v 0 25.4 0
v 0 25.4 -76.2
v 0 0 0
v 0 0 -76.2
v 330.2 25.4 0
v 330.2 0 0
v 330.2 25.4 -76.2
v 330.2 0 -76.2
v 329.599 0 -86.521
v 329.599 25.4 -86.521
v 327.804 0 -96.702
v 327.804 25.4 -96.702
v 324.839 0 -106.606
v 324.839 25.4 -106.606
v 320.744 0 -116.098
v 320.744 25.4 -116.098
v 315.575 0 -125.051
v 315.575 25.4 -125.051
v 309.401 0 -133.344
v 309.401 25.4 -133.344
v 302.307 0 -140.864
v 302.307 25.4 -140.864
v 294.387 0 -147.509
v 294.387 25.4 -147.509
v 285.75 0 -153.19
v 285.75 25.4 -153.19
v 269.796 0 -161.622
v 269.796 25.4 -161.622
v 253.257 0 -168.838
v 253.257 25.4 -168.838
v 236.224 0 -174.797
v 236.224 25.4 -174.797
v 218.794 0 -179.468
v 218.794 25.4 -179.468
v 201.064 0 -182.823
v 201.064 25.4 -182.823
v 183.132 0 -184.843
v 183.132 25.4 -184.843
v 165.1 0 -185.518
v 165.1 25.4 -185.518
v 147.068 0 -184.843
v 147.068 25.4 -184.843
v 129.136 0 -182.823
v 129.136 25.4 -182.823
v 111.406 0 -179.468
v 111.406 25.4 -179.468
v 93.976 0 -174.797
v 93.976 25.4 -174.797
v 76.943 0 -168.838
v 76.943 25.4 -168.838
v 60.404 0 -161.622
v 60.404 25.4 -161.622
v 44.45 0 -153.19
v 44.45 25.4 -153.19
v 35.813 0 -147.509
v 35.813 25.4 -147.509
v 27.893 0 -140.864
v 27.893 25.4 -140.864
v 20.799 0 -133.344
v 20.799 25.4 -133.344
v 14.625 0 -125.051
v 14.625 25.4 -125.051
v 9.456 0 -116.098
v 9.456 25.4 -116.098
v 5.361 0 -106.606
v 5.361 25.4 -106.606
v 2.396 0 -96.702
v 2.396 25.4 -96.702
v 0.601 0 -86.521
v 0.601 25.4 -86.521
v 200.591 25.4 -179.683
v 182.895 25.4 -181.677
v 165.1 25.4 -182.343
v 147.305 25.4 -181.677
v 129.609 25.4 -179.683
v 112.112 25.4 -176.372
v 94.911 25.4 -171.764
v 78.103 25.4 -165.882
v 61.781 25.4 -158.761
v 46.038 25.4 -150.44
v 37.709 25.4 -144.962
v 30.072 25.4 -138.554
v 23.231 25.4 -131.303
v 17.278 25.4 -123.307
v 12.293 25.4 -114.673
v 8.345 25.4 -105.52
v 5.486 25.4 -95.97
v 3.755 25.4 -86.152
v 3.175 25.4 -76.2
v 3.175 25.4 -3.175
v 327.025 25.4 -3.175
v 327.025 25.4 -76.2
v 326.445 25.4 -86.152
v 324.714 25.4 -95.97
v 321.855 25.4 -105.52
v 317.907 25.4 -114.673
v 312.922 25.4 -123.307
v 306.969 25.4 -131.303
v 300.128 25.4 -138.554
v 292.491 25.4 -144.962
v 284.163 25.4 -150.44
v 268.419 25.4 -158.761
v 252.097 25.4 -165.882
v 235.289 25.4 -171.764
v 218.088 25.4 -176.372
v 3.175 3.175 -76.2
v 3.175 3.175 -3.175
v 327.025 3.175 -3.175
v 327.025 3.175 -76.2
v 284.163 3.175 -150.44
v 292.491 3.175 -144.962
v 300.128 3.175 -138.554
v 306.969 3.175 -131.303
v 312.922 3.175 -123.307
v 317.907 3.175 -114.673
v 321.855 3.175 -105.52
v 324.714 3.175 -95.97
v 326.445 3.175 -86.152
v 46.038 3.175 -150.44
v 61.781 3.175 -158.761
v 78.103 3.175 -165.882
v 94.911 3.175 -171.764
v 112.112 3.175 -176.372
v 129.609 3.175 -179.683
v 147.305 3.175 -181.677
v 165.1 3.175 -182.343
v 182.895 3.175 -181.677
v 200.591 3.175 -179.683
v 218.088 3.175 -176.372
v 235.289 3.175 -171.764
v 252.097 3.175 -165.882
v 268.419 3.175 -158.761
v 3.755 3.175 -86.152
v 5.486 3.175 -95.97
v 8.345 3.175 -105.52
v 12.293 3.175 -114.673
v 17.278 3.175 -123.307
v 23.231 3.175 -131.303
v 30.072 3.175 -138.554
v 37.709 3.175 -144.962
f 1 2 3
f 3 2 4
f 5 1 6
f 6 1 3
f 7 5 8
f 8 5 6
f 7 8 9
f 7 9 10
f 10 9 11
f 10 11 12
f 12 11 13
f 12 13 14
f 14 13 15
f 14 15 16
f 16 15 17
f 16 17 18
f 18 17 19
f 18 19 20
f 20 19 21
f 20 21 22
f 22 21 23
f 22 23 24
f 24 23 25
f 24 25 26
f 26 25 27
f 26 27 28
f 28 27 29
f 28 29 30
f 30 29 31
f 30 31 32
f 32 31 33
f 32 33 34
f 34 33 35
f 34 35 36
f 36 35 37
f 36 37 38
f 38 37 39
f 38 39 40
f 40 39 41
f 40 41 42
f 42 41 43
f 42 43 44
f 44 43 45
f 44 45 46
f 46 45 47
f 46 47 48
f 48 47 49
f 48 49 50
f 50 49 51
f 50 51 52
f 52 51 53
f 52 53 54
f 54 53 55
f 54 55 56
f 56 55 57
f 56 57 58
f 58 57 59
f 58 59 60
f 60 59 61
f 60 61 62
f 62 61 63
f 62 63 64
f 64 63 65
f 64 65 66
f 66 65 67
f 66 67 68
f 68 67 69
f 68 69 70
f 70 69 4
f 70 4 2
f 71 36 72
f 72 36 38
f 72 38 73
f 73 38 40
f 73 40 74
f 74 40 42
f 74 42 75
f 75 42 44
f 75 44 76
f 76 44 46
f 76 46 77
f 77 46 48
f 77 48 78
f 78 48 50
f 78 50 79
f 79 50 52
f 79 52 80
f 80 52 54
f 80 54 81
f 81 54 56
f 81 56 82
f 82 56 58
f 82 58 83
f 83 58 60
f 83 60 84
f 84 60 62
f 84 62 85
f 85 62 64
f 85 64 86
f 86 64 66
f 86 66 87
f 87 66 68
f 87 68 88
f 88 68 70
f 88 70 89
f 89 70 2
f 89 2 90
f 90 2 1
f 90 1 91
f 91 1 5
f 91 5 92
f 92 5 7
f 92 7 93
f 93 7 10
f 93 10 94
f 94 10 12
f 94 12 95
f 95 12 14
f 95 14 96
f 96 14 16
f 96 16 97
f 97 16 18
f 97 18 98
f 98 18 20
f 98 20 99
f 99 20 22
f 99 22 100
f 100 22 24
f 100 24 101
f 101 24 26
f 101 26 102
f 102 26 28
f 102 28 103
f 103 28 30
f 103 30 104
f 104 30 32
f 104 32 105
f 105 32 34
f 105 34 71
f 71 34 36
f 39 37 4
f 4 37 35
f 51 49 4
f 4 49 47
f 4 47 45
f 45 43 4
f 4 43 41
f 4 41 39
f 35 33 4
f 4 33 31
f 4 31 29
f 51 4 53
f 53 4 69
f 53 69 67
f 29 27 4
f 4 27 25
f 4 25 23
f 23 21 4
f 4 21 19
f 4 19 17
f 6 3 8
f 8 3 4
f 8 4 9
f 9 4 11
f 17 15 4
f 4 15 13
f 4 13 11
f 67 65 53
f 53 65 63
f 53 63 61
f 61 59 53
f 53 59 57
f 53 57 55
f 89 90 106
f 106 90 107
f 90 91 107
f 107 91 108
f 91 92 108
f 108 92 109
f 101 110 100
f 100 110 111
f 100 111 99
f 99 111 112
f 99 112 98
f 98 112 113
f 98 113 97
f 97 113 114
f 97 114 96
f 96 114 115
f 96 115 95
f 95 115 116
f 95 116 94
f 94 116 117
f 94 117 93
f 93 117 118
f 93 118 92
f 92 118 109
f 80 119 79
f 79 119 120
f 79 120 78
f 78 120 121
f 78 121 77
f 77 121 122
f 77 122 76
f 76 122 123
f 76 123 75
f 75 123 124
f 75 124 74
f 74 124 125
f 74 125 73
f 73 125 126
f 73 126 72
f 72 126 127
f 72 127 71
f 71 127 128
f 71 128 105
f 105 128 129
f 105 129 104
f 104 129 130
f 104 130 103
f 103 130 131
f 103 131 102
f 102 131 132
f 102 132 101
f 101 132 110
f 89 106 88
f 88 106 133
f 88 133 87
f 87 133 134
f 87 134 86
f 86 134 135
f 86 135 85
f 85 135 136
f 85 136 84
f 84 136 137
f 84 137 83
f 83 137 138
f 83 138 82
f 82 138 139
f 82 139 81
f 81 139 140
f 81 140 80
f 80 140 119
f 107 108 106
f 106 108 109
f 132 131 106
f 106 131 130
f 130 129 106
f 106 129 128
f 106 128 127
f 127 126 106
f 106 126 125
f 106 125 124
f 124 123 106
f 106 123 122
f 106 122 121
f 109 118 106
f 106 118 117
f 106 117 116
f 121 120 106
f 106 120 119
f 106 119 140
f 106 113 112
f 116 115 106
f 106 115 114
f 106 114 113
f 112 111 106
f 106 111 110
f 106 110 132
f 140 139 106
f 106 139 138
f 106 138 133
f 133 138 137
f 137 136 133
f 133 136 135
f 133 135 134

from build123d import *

# Parameters (mm, degrees)
BOSS_EXTRUDE1_DEPTH = 25.4
SHELL1_T            = -3.175


with BuildPart() as part:
    # Sketch1 → Boss-Extrude1 (new body)
    with BuildSketch(Plane(origin=(0, 0, 0), x_dir=(1, 0, 0), z_dir=(0, 1, 0))):
        with BuildLine():
            Line((0, 0), (330.2, 0))
            Line((330.2, 0), (330.2, 76.2))
            ThreePointArc((330.2, 76.2), (318.289658396, 120.65), (285.75, 153.189658396))
            ThreePointArc((285.75, 153.189658396), (165.1, 185.517728463), (44.45, 153.189658396))
            ThreePointArc((44.45, 153.189658396), (11.910341604, 120.65), (0, 76.2))
            Line((0, 76.2), (0, 0))
        make_face()
    extrude(amount=BOSS_EXTRUDE1_DEPTH)

    # Shell1
    shell1_openings = [part.faces().sort_by_distance(p)[0] for p in [
        (165.1, 25.4, -83.209110685),
    ]]
    offset(amount=SHELL1_T, openings=shell1_openings, kind=Kind.INTERSECTION)


solid = part.part
